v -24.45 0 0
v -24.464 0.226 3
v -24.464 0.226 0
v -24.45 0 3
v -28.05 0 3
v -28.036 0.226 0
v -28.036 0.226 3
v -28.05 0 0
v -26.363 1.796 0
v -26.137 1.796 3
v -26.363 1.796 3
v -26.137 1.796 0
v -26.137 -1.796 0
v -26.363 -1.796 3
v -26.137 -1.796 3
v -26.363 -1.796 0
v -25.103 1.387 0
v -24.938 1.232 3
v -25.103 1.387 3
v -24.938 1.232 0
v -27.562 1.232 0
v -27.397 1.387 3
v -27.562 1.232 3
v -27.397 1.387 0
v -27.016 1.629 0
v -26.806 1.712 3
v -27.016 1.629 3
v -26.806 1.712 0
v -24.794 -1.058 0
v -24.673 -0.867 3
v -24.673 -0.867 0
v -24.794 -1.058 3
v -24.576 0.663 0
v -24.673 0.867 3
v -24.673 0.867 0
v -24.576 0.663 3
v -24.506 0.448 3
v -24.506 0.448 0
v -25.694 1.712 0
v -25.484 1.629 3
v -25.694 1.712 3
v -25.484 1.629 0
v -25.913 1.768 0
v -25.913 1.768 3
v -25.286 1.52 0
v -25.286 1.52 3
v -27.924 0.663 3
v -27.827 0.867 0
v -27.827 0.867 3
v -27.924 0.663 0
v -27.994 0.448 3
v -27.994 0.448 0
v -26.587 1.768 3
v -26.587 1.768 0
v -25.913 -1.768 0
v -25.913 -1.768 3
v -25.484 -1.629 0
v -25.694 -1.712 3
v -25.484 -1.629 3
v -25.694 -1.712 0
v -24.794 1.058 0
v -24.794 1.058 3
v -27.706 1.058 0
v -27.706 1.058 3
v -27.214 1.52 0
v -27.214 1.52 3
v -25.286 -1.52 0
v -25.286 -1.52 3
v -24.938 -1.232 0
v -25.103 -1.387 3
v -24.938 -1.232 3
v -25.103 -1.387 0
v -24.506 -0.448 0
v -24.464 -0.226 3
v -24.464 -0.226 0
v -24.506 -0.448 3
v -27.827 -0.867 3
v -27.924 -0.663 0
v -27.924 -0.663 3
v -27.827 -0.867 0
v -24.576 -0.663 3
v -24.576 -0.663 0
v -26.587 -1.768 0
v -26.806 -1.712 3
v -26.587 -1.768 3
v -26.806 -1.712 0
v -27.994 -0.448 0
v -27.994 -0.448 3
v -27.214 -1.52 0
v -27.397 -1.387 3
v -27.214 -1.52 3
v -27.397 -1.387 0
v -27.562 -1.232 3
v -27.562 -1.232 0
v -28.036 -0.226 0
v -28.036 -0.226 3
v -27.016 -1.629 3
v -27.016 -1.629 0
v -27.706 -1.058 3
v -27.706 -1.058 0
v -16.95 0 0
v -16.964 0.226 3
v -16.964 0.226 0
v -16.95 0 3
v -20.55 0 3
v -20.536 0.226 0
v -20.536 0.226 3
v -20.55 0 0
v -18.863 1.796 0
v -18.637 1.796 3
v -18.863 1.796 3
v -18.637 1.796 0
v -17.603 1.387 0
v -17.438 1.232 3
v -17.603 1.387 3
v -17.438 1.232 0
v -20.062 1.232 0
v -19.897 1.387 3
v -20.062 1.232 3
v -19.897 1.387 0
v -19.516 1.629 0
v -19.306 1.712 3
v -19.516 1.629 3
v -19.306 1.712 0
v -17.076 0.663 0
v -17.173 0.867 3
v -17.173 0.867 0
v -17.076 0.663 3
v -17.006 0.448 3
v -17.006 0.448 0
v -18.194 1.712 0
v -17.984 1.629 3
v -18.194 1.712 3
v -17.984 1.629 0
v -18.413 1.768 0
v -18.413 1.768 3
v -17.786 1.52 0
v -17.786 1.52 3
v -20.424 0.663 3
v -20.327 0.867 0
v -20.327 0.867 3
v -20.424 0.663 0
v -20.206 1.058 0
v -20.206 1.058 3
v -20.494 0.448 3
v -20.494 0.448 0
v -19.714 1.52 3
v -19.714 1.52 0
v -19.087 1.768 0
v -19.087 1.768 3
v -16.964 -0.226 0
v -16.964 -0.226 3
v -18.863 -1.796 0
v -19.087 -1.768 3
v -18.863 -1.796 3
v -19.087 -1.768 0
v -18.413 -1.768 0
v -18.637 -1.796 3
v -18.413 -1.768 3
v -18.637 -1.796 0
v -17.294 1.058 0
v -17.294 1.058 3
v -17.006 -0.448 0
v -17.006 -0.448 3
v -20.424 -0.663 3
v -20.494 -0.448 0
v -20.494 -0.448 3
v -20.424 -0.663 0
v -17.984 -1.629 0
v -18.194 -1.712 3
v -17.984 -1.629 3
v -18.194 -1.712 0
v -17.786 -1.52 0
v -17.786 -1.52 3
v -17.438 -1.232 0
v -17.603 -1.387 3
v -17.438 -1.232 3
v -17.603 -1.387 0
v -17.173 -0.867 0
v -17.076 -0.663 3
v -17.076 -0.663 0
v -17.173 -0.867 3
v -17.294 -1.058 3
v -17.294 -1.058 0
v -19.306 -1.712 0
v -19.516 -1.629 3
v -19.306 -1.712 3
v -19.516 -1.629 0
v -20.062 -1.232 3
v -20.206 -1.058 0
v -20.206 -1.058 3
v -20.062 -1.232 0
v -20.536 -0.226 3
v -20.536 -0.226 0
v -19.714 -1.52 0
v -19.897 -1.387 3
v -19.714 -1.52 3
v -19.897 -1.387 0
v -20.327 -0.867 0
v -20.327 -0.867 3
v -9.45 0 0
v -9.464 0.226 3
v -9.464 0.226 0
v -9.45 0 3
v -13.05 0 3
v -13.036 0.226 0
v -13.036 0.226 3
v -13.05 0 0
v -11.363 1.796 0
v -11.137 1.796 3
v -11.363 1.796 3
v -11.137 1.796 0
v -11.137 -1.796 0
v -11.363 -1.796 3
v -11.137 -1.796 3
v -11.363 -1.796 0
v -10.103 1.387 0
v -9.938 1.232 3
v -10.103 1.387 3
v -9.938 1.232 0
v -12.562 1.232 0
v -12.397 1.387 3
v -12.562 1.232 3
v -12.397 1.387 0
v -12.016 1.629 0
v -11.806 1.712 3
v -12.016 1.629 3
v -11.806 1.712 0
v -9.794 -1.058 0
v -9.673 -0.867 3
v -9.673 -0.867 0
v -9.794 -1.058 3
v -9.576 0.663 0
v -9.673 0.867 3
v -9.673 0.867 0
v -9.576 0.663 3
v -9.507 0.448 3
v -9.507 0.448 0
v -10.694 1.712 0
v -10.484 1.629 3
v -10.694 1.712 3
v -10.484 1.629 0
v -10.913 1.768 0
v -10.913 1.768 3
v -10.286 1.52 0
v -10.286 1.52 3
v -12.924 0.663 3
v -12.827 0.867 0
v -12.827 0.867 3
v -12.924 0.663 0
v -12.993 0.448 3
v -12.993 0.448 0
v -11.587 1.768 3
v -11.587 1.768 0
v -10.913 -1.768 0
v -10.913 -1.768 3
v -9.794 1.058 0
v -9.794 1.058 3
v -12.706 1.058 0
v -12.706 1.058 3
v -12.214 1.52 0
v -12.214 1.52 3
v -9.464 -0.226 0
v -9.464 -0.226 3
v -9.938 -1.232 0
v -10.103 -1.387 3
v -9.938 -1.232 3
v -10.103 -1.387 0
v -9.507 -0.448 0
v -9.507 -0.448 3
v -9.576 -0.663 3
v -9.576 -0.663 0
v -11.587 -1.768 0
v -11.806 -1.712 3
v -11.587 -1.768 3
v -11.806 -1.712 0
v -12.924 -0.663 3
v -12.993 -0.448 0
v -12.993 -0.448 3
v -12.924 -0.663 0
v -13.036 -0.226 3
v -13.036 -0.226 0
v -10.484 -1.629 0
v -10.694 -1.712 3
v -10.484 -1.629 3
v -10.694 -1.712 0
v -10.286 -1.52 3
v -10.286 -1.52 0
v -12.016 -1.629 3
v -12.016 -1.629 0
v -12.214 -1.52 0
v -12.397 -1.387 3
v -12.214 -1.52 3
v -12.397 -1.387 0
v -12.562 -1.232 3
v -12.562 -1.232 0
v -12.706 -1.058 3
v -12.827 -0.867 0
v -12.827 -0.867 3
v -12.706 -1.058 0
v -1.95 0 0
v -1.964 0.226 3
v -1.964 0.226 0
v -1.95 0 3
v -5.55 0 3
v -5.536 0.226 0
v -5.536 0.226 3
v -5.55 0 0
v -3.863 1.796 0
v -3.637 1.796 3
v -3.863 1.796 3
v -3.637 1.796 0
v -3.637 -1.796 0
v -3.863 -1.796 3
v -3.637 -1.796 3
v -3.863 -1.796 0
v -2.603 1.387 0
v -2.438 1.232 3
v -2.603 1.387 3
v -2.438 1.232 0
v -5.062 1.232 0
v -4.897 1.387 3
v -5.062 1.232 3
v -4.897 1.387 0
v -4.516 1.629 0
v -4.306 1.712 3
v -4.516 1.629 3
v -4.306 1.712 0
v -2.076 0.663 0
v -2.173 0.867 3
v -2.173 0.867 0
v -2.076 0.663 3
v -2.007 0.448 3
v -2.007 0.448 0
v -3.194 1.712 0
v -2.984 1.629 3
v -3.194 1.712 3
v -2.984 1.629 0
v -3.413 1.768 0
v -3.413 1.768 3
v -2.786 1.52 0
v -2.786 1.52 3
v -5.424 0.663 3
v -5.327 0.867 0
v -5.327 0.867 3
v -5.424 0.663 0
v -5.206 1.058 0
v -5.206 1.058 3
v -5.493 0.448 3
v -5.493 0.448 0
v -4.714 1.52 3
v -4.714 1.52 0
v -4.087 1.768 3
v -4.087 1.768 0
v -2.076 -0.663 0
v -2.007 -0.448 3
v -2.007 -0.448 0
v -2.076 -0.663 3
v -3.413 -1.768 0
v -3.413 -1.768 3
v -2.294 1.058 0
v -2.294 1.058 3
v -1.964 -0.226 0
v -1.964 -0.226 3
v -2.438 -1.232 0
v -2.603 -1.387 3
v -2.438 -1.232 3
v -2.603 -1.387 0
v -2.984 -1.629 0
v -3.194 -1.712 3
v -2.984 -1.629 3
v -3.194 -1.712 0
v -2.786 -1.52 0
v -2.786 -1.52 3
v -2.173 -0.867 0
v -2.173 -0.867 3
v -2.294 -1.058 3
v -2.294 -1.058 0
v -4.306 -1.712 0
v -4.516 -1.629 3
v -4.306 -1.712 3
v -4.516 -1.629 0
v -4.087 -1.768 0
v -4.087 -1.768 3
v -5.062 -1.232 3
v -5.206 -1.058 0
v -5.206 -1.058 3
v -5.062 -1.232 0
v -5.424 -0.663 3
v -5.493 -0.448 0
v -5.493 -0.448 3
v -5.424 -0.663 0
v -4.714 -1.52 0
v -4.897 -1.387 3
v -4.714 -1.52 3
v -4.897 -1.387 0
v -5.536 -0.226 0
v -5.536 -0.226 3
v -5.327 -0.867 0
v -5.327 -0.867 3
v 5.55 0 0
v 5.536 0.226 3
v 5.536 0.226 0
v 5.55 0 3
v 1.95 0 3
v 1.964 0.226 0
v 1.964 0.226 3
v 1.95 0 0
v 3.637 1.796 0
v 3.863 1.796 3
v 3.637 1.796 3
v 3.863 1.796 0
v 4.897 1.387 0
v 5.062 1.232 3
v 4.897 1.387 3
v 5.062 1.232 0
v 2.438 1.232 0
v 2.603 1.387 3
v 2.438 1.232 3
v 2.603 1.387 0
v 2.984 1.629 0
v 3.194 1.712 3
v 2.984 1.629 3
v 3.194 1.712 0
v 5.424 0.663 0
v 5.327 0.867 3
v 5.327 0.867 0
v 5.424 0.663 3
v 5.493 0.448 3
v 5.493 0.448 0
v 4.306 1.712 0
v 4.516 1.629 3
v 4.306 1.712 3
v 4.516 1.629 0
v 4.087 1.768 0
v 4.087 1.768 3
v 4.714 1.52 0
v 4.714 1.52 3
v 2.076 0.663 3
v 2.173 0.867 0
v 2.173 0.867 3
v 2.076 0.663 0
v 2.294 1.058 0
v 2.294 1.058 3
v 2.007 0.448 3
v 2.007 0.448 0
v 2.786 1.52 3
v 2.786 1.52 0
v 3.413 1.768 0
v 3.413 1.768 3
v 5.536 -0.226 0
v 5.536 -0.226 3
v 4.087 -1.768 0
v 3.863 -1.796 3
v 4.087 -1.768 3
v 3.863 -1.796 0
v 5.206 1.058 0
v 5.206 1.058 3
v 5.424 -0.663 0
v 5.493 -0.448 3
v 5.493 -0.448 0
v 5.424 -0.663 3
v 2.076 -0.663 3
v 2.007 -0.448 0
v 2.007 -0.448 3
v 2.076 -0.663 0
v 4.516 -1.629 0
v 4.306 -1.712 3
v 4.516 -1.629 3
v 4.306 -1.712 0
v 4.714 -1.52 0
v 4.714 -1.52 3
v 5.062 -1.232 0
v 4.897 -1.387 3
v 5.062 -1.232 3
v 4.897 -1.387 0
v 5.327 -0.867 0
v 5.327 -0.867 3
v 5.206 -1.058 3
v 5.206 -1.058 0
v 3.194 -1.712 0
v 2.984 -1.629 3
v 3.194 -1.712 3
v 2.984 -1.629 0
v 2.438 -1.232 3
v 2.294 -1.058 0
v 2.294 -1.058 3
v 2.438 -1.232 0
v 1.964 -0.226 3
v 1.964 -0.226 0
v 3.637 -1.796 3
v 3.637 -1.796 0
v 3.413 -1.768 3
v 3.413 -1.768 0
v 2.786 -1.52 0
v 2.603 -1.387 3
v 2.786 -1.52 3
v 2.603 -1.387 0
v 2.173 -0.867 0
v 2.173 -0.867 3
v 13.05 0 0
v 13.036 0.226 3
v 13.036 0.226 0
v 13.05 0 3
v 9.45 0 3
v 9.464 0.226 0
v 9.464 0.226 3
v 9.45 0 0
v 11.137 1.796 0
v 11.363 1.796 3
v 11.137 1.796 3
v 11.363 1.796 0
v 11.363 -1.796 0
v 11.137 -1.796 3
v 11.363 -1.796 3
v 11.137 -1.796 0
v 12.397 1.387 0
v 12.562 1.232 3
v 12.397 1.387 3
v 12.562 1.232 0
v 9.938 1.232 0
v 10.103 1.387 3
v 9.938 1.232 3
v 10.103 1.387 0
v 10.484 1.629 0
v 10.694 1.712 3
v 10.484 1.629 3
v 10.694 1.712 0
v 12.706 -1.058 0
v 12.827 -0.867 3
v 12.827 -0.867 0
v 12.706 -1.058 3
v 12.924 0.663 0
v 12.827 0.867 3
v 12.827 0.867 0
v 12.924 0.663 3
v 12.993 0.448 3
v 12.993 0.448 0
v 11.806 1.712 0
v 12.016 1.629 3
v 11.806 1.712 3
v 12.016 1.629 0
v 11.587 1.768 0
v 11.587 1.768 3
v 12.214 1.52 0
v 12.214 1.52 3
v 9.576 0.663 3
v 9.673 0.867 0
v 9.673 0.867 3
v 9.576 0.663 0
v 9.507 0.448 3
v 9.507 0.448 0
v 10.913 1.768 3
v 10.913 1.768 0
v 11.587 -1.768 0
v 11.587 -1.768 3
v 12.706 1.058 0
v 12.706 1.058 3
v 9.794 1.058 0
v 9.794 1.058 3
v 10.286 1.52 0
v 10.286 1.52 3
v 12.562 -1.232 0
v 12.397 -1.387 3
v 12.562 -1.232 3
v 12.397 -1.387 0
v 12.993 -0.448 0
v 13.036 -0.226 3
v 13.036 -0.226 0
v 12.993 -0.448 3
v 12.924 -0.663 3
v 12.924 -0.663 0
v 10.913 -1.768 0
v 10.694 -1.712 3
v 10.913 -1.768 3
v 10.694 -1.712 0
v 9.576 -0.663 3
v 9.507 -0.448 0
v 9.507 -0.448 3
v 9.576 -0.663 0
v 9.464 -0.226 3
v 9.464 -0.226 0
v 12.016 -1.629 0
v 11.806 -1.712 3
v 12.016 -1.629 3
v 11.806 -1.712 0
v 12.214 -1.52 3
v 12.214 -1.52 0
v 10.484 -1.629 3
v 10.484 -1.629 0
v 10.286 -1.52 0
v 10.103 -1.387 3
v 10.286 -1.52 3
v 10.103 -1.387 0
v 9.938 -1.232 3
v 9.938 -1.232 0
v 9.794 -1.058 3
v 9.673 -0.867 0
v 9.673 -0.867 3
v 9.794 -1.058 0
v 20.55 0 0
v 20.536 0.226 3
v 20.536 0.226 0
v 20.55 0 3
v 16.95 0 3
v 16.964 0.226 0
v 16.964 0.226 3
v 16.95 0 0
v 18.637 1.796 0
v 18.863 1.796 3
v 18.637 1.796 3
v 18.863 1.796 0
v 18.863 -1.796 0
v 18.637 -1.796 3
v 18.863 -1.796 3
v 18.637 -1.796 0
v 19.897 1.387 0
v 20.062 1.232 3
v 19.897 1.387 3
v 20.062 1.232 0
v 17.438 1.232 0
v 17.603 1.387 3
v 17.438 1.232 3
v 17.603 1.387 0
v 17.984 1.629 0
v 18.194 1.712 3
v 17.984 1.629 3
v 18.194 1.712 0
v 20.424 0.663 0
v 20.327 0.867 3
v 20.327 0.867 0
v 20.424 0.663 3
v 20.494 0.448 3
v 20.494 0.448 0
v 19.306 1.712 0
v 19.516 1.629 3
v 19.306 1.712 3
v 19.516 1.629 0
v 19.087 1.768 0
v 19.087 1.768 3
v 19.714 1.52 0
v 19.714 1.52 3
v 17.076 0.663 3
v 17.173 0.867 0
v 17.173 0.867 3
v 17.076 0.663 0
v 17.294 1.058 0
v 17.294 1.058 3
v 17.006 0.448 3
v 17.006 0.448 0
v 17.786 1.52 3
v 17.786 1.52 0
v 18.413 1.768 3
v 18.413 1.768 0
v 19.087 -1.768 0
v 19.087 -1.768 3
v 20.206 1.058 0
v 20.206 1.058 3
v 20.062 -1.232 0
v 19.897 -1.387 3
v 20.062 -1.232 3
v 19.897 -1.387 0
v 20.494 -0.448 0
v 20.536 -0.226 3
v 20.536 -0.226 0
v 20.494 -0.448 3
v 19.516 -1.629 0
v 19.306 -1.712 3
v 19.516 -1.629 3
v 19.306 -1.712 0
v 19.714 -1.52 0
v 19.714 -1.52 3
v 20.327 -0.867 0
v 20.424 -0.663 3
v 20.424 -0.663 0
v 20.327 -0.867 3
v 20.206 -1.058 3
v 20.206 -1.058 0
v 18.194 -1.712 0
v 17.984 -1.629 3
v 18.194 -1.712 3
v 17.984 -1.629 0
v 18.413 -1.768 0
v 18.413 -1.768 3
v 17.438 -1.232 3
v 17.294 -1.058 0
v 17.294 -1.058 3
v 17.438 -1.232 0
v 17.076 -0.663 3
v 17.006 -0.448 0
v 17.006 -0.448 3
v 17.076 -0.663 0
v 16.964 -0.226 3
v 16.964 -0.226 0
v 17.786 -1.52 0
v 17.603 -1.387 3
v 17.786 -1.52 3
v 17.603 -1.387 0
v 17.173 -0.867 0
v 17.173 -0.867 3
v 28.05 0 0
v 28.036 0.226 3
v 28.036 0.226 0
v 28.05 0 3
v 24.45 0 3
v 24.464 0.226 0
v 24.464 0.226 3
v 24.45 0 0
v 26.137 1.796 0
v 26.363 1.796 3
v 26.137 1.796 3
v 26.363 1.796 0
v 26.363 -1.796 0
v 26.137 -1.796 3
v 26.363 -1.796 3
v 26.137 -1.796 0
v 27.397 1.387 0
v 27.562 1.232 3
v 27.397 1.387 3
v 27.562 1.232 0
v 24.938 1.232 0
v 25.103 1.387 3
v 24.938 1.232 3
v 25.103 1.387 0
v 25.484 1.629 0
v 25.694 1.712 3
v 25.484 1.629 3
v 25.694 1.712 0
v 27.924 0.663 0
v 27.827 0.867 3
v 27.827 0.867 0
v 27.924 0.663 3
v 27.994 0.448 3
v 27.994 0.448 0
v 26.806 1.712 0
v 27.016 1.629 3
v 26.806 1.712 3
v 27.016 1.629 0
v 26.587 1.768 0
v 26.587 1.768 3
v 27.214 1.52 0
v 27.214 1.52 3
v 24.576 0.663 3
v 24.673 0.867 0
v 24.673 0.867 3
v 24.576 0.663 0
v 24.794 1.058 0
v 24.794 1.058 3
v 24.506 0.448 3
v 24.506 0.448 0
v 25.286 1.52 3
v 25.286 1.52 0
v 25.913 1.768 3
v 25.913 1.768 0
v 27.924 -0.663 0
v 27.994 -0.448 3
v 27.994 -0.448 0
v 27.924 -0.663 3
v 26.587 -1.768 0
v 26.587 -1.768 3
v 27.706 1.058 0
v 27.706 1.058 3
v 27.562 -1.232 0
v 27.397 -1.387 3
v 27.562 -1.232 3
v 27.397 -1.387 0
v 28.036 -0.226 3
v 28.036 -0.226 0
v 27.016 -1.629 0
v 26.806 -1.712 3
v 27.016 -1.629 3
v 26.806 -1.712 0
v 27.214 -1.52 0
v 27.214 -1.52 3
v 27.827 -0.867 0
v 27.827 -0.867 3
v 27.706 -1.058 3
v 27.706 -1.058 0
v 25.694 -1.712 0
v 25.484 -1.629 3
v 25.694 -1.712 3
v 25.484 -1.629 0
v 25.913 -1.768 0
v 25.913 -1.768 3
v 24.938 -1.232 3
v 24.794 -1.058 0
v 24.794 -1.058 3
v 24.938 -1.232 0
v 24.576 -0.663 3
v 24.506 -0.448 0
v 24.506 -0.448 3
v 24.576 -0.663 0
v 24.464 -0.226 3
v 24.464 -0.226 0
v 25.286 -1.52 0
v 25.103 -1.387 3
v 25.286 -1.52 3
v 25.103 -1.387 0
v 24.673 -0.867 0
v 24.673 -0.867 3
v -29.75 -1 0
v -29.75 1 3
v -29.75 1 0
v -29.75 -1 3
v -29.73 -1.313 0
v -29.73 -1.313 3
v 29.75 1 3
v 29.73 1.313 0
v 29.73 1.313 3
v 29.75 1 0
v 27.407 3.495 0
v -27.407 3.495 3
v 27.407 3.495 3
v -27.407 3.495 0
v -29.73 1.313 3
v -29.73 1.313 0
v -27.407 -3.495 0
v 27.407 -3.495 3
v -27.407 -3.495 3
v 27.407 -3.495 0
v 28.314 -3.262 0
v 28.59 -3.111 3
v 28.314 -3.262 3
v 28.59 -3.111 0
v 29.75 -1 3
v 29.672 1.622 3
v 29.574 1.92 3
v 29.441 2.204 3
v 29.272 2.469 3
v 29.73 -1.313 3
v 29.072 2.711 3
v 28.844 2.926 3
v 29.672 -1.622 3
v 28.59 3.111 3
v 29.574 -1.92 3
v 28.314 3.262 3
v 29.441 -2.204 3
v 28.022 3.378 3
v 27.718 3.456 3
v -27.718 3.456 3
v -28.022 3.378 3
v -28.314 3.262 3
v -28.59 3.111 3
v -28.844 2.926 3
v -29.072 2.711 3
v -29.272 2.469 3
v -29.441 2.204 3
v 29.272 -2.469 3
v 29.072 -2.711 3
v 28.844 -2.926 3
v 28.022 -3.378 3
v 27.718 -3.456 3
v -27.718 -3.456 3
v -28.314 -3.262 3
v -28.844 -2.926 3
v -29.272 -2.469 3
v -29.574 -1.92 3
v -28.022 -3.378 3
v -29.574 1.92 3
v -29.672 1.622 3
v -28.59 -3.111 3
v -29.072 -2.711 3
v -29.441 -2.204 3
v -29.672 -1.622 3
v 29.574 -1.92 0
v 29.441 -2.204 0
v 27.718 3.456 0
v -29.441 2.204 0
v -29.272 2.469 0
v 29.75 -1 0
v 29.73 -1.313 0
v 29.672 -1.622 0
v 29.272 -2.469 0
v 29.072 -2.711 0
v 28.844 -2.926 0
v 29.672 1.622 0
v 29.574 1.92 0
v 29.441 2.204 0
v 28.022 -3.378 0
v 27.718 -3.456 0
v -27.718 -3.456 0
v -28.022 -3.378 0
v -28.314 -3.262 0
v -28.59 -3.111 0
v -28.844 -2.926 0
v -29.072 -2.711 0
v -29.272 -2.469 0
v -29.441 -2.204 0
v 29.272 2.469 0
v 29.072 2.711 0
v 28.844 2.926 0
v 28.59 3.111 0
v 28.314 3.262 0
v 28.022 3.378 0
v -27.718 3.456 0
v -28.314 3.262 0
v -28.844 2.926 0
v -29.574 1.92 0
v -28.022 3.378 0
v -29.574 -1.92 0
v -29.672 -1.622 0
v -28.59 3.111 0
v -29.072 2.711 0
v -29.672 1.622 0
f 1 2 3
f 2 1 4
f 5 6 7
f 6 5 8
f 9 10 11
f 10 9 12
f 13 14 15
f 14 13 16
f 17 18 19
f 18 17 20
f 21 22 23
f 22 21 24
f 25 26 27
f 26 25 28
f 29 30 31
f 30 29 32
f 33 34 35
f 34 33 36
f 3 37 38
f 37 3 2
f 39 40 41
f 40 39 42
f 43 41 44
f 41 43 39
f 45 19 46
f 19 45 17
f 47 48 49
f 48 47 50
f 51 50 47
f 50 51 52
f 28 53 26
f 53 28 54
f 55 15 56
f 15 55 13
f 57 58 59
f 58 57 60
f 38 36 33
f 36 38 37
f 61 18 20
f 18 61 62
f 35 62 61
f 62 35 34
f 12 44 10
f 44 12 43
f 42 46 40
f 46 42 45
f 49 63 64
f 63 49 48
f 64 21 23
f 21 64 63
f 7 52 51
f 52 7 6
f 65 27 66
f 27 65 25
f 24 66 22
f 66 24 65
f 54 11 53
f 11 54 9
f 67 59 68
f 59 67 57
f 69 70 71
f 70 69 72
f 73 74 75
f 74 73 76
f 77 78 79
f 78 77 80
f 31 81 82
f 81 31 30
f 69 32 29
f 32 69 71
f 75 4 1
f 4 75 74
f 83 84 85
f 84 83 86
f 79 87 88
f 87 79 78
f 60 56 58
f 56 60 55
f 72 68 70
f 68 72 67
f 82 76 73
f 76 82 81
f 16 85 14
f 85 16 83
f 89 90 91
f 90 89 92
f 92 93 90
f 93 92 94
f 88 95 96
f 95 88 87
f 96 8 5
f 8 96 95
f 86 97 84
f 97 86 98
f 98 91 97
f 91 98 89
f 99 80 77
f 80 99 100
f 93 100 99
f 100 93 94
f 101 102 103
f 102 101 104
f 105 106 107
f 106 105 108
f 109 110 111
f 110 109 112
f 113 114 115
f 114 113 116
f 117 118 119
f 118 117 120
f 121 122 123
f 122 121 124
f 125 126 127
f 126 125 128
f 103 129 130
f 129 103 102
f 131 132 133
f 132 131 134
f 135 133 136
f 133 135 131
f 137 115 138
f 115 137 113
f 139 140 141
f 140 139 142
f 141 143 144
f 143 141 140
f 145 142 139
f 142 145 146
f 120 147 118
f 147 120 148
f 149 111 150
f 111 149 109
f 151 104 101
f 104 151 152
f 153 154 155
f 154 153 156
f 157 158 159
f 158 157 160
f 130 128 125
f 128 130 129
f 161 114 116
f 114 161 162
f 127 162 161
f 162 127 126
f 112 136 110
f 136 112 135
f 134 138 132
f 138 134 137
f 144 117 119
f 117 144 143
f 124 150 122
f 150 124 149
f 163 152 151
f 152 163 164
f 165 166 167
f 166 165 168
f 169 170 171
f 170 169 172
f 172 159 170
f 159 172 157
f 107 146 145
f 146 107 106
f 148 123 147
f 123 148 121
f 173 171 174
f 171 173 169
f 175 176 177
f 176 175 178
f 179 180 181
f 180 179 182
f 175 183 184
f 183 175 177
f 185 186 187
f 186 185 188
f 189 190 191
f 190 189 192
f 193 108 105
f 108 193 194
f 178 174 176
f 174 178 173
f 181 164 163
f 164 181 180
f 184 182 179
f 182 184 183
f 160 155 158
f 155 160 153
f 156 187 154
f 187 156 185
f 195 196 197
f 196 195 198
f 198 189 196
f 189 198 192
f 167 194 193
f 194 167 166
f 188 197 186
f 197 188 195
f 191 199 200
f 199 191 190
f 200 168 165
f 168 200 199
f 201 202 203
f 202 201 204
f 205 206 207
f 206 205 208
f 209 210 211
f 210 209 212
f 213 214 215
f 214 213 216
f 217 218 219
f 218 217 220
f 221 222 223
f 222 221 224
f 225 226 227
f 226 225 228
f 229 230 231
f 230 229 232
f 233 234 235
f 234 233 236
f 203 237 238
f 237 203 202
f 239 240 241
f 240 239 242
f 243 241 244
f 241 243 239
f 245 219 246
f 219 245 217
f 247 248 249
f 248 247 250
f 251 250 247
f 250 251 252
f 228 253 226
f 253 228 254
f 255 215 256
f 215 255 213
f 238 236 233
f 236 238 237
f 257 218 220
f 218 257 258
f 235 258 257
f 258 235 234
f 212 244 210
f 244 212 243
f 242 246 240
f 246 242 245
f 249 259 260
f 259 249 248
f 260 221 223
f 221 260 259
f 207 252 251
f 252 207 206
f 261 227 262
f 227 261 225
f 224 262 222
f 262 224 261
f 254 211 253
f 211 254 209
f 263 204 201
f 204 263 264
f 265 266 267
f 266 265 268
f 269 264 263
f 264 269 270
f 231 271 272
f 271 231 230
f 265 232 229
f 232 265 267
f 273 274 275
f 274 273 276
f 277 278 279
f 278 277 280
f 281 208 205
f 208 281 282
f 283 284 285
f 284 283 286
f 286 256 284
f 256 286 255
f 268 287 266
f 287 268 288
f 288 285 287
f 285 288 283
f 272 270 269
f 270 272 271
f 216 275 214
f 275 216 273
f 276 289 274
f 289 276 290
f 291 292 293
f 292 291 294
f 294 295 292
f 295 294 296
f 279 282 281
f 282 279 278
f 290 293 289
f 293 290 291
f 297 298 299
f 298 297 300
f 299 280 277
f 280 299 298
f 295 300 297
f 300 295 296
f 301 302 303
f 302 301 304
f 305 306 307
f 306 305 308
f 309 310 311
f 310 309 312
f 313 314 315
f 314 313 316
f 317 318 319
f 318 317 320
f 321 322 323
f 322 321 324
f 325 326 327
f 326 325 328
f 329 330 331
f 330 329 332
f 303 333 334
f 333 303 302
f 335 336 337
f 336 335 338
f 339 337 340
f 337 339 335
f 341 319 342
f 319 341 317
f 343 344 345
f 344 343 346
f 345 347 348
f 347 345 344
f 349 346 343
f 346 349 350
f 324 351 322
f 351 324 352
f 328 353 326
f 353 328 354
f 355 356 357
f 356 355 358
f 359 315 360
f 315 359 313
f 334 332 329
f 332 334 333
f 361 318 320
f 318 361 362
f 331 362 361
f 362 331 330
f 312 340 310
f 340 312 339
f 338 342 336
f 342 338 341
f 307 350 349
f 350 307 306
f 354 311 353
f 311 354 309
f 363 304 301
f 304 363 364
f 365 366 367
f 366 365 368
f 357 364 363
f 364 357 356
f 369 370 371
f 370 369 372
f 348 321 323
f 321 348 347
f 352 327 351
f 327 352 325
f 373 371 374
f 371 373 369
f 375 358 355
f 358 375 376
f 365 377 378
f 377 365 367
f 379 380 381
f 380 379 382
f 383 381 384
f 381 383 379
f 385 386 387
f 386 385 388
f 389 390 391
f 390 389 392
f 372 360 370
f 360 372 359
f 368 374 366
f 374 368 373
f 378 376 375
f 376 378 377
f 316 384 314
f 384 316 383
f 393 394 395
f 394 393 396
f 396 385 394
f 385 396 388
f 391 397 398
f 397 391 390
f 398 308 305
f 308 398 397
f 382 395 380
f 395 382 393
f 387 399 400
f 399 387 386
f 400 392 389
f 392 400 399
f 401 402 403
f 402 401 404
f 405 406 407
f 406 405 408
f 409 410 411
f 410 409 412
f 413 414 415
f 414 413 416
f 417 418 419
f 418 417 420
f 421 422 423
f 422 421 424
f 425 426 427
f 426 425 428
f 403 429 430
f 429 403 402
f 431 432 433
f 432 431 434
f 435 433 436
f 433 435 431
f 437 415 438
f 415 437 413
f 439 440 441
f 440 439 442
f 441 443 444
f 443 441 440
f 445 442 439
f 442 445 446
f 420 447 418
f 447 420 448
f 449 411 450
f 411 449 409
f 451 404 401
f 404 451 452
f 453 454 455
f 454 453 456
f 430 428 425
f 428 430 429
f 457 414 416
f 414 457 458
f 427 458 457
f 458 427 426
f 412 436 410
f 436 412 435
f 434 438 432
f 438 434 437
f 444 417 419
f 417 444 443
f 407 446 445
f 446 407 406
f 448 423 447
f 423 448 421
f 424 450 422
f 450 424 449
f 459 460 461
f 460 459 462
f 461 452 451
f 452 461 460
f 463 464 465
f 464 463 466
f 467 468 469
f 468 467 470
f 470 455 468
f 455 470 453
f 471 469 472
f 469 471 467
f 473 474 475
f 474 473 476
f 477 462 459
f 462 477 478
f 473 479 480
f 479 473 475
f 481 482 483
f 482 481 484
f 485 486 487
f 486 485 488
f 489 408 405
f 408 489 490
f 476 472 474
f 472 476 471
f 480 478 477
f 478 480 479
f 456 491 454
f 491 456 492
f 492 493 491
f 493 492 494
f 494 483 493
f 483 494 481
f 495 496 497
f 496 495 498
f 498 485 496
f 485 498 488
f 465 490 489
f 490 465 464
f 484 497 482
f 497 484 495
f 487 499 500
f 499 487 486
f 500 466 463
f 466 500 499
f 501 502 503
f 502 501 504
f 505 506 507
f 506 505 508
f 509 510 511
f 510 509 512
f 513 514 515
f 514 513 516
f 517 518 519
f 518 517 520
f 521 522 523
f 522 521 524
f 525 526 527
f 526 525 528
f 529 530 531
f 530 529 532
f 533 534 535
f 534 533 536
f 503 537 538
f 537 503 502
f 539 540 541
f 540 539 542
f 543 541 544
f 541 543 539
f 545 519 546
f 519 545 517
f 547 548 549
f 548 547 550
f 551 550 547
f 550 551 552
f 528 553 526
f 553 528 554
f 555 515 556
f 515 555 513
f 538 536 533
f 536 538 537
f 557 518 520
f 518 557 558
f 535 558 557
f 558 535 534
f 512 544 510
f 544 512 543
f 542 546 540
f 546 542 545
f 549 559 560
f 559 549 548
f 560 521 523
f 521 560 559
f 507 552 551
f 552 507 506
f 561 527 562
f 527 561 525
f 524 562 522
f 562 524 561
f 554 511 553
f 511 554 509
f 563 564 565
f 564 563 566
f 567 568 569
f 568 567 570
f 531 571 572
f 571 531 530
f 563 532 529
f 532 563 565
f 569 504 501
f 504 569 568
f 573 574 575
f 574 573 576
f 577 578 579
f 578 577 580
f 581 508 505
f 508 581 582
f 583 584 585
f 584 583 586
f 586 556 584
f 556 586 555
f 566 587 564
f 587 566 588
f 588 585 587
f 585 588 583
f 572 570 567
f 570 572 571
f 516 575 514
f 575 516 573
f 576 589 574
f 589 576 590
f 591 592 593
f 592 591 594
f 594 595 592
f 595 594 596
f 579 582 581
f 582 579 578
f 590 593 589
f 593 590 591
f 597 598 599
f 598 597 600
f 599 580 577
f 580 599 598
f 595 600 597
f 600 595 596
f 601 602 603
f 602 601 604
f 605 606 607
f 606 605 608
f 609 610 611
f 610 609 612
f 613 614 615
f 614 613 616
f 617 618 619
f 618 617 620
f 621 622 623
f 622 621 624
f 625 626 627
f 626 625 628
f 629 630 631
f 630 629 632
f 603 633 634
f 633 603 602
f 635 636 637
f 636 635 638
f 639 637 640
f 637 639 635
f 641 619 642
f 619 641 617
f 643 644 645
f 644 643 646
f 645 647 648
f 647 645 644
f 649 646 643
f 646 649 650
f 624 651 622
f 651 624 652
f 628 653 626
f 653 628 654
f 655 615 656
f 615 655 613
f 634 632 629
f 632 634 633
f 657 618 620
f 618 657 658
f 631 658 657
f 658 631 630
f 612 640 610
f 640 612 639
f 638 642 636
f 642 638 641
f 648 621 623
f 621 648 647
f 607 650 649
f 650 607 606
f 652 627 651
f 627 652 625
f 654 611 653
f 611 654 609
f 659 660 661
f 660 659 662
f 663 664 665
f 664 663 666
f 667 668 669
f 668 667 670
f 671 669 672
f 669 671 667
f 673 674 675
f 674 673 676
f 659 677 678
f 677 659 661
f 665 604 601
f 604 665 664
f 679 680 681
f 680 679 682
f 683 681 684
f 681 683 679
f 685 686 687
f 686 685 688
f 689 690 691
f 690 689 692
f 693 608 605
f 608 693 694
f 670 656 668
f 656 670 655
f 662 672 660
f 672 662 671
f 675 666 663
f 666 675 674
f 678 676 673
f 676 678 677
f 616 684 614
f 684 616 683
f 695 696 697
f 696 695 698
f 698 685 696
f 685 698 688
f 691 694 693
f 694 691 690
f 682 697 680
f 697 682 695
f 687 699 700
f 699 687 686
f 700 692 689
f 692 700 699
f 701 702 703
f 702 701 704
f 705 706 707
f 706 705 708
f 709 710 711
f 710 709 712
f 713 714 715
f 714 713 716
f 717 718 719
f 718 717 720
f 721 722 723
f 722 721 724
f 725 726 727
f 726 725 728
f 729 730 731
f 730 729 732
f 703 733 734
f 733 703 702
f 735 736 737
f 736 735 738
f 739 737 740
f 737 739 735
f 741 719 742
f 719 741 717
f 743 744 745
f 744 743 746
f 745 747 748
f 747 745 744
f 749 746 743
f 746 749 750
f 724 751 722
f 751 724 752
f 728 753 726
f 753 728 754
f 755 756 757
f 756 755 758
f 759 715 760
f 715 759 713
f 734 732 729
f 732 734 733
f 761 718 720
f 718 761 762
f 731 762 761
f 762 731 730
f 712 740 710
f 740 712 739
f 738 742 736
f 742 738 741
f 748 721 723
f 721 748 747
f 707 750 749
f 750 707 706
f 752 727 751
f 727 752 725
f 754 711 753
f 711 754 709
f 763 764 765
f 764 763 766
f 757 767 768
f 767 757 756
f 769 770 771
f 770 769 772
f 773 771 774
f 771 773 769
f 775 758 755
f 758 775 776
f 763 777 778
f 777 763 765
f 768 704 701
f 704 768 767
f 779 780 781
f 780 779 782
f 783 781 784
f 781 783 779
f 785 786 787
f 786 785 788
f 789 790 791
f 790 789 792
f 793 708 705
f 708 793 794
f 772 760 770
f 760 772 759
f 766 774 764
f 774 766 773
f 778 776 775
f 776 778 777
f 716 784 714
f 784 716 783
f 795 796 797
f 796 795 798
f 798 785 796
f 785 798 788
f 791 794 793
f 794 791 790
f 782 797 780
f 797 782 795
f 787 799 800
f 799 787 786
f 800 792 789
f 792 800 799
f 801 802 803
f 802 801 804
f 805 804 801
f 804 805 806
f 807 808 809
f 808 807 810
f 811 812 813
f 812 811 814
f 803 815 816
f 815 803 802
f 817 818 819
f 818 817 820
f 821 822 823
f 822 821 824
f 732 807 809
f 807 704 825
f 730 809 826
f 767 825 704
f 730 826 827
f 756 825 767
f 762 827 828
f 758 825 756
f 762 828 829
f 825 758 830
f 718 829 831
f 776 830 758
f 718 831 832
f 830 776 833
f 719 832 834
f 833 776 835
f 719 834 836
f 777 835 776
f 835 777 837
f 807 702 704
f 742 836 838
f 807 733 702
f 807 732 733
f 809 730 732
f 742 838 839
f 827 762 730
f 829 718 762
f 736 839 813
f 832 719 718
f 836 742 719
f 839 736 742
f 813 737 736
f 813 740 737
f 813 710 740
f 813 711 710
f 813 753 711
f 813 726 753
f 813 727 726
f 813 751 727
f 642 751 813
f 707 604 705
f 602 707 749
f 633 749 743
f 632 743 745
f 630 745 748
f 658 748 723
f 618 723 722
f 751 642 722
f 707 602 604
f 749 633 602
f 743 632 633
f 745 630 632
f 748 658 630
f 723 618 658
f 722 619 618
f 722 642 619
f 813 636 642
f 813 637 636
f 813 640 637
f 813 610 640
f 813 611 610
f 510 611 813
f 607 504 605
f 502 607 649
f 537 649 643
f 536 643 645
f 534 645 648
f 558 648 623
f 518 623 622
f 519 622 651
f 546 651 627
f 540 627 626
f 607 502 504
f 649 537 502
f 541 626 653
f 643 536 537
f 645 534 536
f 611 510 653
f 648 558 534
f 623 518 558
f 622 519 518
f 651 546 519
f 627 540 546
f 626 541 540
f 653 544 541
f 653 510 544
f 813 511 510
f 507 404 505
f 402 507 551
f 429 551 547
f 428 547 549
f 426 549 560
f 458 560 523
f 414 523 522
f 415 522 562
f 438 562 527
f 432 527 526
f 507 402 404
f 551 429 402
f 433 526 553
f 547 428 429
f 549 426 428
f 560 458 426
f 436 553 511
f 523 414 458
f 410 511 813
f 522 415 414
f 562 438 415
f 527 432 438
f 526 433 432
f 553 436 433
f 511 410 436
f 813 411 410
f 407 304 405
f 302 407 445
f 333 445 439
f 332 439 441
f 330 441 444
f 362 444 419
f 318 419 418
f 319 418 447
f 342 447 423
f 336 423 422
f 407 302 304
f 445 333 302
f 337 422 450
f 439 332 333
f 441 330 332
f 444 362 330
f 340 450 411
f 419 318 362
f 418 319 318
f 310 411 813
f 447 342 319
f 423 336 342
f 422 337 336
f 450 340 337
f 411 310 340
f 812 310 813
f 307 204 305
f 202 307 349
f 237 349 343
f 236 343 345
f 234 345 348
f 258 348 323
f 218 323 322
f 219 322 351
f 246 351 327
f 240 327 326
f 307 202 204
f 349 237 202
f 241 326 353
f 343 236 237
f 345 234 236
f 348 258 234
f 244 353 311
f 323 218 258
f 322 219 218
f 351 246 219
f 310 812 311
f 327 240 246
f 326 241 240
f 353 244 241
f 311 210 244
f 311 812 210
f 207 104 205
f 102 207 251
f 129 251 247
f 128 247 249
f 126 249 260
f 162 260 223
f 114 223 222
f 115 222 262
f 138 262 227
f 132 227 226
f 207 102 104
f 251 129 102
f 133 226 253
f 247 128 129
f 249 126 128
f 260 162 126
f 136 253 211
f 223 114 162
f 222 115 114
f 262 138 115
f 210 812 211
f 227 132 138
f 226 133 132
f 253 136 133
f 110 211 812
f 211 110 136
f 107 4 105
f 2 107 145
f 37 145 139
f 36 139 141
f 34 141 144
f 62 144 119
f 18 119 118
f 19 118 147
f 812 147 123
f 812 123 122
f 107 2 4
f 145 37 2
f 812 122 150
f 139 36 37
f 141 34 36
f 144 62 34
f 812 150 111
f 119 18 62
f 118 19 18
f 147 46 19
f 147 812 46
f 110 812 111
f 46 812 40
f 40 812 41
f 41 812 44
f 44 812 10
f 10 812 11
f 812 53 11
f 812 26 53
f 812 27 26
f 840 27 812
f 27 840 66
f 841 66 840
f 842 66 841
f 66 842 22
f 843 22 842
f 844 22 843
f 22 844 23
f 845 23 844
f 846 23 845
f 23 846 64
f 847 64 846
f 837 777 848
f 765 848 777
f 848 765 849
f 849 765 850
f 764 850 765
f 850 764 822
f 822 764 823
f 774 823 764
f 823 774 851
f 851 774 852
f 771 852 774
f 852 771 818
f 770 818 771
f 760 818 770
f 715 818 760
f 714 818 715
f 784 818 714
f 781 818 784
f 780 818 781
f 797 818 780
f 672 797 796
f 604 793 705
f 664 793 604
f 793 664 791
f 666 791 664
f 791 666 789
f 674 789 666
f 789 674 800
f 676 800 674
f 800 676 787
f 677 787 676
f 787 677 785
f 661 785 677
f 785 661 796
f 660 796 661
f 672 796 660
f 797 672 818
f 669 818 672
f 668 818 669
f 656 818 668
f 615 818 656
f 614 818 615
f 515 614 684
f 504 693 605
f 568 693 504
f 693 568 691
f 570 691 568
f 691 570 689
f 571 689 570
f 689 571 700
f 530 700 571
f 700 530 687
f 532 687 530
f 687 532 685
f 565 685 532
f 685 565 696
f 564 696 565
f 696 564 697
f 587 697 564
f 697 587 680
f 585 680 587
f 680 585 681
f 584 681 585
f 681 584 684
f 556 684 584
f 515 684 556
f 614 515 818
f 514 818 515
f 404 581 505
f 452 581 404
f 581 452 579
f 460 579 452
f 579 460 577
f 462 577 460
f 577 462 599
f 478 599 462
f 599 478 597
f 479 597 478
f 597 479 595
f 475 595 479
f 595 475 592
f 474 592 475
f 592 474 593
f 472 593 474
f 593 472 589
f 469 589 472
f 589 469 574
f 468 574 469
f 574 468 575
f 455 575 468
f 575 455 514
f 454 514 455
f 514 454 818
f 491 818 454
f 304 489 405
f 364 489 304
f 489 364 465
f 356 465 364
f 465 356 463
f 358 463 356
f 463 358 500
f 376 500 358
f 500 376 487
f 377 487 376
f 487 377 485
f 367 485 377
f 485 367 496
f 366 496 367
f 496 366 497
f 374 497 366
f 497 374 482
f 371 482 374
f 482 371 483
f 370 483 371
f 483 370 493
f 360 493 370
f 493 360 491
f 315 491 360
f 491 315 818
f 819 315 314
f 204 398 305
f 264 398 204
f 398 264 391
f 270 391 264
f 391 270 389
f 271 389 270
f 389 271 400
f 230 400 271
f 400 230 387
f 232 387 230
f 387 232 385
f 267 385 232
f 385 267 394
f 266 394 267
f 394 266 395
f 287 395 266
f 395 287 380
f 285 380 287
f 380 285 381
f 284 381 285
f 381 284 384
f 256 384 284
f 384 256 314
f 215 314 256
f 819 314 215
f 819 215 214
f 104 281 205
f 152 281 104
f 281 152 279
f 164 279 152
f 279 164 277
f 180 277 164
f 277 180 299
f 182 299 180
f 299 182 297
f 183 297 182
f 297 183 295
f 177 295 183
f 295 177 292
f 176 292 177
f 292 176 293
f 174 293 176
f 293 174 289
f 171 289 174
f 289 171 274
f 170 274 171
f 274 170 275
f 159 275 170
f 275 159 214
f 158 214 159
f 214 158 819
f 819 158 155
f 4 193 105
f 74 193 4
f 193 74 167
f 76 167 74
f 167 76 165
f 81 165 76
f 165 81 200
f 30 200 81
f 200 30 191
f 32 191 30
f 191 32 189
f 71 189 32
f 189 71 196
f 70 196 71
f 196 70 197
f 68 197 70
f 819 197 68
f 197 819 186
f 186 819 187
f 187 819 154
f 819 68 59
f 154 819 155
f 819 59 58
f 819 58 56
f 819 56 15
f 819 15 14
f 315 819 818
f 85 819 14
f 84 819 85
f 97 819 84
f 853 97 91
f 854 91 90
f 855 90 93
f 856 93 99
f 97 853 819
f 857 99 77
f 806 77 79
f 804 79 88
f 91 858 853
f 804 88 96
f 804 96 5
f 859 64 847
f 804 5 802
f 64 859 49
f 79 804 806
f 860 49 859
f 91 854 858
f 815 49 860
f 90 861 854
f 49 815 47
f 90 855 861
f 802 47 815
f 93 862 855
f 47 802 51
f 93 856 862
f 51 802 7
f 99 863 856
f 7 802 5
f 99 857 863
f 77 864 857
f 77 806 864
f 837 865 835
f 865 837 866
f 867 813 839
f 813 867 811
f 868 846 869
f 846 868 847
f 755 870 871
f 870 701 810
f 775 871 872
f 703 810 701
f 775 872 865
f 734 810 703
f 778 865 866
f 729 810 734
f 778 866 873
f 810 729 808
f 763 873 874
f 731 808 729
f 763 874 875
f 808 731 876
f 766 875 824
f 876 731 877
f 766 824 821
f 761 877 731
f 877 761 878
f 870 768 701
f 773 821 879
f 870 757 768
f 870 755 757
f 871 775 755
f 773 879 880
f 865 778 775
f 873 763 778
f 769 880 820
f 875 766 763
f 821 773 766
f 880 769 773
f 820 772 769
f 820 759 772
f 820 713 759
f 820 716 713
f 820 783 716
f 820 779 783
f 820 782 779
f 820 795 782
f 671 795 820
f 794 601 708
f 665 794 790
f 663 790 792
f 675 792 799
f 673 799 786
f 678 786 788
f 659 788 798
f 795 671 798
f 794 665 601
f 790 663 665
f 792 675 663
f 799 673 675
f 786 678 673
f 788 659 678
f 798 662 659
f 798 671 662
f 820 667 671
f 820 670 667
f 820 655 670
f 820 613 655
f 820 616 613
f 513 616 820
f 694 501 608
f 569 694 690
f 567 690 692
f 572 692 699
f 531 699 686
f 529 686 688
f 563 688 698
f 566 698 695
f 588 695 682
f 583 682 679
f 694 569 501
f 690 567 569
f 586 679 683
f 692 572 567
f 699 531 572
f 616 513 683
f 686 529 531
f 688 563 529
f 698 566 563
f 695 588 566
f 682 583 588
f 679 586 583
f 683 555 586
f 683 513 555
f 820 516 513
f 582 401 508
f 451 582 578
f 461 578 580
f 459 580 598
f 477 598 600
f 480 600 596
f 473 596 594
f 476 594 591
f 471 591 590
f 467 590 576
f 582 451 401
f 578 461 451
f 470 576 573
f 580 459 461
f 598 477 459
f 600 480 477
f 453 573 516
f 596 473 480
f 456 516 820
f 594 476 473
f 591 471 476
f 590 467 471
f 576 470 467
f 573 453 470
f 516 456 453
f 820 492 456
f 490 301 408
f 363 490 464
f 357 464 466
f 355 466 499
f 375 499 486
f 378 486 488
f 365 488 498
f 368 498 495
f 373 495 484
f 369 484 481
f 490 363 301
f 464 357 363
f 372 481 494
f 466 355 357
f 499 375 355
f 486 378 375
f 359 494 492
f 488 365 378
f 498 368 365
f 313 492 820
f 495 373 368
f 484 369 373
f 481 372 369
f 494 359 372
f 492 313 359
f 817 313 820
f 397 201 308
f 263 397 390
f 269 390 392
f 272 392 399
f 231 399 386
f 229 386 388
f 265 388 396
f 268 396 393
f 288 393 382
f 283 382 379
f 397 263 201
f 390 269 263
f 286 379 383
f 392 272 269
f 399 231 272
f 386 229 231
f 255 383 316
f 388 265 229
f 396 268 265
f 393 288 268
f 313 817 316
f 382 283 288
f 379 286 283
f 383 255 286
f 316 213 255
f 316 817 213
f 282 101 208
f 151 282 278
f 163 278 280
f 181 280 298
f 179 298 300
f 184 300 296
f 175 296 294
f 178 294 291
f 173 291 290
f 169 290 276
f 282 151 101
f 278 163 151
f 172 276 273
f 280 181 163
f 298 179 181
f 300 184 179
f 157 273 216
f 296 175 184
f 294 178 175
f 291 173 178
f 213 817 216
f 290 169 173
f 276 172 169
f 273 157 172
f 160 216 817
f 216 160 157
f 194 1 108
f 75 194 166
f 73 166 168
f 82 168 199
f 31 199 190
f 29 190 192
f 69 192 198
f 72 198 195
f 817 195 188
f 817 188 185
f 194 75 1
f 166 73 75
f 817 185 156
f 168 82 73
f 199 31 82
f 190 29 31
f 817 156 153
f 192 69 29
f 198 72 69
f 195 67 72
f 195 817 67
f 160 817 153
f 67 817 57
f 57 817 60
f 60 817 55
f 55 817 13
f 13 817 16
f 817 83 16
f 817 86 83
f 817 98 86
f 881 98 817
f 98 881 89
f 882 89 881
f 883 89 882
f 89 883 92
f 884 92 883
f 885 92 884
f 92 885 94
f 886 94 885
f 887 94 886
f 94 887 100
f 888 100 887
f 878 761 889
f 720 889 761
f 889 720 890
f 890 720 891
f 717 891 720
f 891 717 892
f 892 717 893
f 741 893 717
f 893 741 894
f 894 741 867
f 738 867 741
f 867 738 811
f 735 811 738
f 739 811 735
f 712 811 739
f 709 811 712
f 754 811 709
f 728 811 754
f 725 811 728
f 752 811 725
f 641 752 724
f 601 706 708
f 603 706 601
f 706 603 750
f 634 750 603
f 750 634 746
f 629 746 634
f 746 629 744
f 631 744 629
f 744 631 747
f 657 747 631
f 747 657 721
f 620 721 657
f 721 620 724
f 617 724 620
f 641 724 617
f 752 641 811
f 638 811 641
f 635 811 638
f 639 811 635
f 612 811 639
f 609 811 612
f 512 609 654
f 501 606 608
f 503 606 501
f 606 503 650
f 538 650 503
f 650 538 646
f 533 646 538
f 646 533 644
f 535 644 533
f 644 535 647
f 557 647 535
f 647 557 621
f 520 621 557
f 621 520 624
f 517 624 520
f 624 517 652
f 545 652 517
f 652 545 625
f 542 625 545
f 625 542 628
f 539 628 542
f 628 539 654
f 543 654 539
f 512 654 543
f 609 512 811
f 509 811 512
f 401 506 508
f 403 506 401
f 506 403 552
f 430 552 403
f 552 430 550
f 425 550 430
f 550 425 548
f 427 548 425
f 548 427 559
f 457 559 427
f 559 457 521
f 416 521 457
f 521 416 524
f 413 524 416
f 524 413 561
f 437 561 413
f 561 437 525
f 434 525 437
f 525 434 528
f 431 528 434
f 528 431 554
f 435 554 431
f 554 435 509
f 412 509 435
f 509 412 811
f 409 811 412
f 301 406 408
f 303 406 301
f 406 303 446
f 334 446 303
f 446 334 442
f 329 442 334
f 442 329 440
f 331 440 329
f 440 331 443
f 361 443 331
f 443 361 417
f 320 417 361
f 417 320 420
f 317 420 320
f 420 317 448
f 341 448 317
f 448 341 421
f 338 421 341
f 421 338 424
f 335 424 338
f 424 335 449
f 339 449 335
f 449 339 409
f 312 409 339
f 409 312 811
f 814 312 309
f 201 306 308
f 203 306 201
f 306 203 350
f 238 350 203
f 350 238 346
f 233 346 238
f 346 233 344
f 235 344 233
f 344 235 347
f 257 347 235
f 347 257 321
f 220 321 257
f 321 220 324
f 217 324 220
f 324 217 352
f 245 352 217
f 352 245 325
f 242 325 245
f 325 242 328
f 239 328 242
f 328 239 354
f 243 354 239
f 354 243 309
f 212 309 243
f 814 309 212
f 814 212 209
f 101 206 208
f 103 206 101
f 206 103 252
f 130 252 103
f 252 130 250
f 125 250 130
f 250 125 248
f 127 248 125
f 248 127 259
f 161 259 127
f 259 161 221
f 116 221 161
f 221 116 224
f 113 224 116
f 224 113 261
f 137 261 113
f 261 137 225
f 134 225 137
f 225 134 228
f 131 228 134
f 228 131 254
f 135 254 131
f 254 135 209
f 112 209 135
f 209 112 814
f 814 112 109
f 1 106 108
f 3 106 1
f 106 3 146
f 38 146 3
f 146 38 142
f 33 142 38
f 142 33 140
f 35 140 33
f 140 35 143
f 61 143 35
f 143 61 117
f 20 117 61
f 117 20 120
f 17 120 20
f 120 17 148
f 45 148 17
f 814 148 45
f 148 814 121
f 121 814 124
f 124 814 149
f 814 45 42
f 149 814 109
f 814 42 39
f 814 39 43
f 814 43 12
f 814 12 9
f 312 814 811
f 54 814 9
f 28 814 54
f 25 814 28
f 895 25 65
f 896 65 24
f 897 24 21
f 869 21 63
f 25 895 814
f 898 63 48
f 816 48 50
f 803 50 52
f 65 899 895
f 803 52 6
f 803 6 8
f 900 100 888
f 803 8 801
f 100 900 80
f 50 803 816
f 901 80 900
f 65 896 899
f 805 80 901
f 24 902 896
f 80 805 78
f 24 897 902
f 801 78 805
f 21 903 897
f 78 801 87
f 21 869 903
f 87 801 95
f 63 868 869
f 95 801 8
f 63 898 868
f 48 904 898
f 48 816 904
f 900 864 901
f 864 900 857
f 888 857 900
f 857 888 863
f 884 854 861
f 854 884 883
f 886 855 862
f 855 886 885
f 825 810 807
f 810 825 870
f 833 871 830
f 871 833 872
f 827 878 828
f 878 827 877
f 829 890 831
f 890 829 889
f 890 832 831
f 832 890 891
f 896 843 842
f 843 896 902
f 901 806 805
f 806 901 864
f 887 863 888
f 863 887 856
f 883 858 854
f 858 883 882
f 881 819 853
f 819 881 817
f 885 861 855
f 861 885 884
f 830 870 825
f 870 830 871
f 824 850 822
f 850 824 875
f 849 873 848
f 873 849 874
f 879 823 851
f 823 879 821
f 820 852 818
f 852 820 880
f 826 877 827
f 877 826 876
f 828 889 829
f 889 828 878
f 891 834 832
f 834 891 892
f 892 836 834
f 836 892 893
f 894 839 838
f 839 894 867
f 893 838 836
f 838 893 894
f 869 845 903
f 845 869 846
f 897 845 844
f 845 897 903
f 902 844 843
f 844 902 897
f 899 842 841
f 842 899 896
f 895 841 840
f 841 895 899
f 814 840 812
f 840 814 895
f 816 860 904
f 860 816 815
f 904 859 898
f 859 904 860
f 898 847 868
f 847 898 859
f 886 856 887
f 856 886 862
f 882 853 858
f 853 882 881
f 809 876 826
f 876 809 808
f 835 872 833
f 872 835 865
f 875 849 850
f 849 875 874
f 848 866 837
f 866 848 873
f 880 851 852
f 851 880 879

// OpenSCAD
$fn = 50;


difference() {
	union() {
		translate(v = [0, 0, 0]) {
			rotate(a = [0, 0, 0]) {
				hull() {
					translate(v = [-27.2500000000, 1.0000000000, 0]) {
						rotate(a = [0, 0, 0]) {
							translate(v = [0, 0, 0]) {
								rotate(a = [0, 0, 0]) {
									cylinder(h = 3, r = 2.5000000000);
								}
							}
						}
					}
					translate(v = [27.2500000000, 1.0000000000, 0]) {
						rotate(a = [0, 0, 0]) {
							translate(v = [0, 0, 0]) {
								rotate(a = [0, 0, 0]) {
									cylinder(h = 3, r = 2.5000000000);
								}
							}
						}
					}
					translate(v = [-27.2500000000, -1.0000000000, 0]) {
						rotate(a = [0, 0, 0]) {
							translate(v = [0, 0, 0]) {
								rotate(a = [0, 0, 0]) {
									cylinder(h = 3, r = 2.5000000000);
								}
							}
						}
					}
					translate(v = [27.2500000000, -1.0000000000, 0]) {
						rotate(a = [0, 0, 0]) {
							translate(v = [0, 0, 0]) {
								rotate(a = [0, 0, 0]) {
									cylinder(h = 3, r = 2.5000000000);
								}
							}
						}
					}
				}
			}
		}
	}
	union() {
		translate(v = [-26.2500000000, 0.0000000000, 0]) {
			rotate(a = [0, 0, 0]) {
				translate(v = [0, 0, -50]) {
					rotate(a = [0, 0, 0]) {
						cylinder(h = 100, r = 1.8000000000);
					}
				}
			}
		}
		translate(v = [-18.7500000000, 0.0000000000, 0]) {
			rotate(a = [0, 0, 0]) {
				translate(v = [0, 0, -50]) {
					rotate(a = [0, 0, 0]) {
						cylinder(h = 100, r = 1.8000000000);
					}
				}
			}
		}
		translate(v = [-11.2500000000, 0.0000000000, 0]) {
			rotate(a = [0, 0, 0]) {
				translate(v = [0, 0, -50]) {
					rotate(a = [0, 0, 0]) {
						cylinder(h = 100, r = 1.8000000000);
					}
				}
			}
		}
		translate(v = [-3.7500000000, 0.0000000000, 0]) {
			rotate(a = [0, 0, 0]) {
				translate(v = [0, 0, -50]) {
					rotate(a = [0, 0, 0]) {
						cylinder(h = 100, r = 1.8000000000);
					}
				}
			}
		}
		translate(v = [3.7500000000, 0.0000000000, 0]) {
			rotate(a = [0, 0, 0]) {
				translate(v = [0, 0, -50]) {
					rotate(a = [0, 0, 0]) {
						cylinder(h = 100, r = 1.8000000000);
					}
				}
			}
		}
		translate(v = [11.2500000000, 0.0000000000, 0]) {
			rotate(a = [0, 0, 0]) {
				translate(v = [0, 0, -50]) {
					rotate(a = [0, 0, 0]) {
						cylinder(h = 100, r = 1.8000000000);
					}
				}
			}
		}
		translate(v = [18.7500000000, 0.0000000000, 0]) {
			rotate(a = [0, 0, 0]) {
				translate(v = [0, 0, -50]) {
					rotate(a = [0, 0, 0]) {
						cylinder(h = 100, r = 1.8000000000);
					}
				}
			}
		}
		translate(v = [26.2500000000, 0.0000000000, 0]) {
			rotate(a = [0, 0, 0]) {
				translate(v = [0, 0, -50]) {
					rotate(a = [0, 0, 0]) {
						cylinder(h = 100, r = 1.8000000000);
					}
				}
			}
		}
	}
}
